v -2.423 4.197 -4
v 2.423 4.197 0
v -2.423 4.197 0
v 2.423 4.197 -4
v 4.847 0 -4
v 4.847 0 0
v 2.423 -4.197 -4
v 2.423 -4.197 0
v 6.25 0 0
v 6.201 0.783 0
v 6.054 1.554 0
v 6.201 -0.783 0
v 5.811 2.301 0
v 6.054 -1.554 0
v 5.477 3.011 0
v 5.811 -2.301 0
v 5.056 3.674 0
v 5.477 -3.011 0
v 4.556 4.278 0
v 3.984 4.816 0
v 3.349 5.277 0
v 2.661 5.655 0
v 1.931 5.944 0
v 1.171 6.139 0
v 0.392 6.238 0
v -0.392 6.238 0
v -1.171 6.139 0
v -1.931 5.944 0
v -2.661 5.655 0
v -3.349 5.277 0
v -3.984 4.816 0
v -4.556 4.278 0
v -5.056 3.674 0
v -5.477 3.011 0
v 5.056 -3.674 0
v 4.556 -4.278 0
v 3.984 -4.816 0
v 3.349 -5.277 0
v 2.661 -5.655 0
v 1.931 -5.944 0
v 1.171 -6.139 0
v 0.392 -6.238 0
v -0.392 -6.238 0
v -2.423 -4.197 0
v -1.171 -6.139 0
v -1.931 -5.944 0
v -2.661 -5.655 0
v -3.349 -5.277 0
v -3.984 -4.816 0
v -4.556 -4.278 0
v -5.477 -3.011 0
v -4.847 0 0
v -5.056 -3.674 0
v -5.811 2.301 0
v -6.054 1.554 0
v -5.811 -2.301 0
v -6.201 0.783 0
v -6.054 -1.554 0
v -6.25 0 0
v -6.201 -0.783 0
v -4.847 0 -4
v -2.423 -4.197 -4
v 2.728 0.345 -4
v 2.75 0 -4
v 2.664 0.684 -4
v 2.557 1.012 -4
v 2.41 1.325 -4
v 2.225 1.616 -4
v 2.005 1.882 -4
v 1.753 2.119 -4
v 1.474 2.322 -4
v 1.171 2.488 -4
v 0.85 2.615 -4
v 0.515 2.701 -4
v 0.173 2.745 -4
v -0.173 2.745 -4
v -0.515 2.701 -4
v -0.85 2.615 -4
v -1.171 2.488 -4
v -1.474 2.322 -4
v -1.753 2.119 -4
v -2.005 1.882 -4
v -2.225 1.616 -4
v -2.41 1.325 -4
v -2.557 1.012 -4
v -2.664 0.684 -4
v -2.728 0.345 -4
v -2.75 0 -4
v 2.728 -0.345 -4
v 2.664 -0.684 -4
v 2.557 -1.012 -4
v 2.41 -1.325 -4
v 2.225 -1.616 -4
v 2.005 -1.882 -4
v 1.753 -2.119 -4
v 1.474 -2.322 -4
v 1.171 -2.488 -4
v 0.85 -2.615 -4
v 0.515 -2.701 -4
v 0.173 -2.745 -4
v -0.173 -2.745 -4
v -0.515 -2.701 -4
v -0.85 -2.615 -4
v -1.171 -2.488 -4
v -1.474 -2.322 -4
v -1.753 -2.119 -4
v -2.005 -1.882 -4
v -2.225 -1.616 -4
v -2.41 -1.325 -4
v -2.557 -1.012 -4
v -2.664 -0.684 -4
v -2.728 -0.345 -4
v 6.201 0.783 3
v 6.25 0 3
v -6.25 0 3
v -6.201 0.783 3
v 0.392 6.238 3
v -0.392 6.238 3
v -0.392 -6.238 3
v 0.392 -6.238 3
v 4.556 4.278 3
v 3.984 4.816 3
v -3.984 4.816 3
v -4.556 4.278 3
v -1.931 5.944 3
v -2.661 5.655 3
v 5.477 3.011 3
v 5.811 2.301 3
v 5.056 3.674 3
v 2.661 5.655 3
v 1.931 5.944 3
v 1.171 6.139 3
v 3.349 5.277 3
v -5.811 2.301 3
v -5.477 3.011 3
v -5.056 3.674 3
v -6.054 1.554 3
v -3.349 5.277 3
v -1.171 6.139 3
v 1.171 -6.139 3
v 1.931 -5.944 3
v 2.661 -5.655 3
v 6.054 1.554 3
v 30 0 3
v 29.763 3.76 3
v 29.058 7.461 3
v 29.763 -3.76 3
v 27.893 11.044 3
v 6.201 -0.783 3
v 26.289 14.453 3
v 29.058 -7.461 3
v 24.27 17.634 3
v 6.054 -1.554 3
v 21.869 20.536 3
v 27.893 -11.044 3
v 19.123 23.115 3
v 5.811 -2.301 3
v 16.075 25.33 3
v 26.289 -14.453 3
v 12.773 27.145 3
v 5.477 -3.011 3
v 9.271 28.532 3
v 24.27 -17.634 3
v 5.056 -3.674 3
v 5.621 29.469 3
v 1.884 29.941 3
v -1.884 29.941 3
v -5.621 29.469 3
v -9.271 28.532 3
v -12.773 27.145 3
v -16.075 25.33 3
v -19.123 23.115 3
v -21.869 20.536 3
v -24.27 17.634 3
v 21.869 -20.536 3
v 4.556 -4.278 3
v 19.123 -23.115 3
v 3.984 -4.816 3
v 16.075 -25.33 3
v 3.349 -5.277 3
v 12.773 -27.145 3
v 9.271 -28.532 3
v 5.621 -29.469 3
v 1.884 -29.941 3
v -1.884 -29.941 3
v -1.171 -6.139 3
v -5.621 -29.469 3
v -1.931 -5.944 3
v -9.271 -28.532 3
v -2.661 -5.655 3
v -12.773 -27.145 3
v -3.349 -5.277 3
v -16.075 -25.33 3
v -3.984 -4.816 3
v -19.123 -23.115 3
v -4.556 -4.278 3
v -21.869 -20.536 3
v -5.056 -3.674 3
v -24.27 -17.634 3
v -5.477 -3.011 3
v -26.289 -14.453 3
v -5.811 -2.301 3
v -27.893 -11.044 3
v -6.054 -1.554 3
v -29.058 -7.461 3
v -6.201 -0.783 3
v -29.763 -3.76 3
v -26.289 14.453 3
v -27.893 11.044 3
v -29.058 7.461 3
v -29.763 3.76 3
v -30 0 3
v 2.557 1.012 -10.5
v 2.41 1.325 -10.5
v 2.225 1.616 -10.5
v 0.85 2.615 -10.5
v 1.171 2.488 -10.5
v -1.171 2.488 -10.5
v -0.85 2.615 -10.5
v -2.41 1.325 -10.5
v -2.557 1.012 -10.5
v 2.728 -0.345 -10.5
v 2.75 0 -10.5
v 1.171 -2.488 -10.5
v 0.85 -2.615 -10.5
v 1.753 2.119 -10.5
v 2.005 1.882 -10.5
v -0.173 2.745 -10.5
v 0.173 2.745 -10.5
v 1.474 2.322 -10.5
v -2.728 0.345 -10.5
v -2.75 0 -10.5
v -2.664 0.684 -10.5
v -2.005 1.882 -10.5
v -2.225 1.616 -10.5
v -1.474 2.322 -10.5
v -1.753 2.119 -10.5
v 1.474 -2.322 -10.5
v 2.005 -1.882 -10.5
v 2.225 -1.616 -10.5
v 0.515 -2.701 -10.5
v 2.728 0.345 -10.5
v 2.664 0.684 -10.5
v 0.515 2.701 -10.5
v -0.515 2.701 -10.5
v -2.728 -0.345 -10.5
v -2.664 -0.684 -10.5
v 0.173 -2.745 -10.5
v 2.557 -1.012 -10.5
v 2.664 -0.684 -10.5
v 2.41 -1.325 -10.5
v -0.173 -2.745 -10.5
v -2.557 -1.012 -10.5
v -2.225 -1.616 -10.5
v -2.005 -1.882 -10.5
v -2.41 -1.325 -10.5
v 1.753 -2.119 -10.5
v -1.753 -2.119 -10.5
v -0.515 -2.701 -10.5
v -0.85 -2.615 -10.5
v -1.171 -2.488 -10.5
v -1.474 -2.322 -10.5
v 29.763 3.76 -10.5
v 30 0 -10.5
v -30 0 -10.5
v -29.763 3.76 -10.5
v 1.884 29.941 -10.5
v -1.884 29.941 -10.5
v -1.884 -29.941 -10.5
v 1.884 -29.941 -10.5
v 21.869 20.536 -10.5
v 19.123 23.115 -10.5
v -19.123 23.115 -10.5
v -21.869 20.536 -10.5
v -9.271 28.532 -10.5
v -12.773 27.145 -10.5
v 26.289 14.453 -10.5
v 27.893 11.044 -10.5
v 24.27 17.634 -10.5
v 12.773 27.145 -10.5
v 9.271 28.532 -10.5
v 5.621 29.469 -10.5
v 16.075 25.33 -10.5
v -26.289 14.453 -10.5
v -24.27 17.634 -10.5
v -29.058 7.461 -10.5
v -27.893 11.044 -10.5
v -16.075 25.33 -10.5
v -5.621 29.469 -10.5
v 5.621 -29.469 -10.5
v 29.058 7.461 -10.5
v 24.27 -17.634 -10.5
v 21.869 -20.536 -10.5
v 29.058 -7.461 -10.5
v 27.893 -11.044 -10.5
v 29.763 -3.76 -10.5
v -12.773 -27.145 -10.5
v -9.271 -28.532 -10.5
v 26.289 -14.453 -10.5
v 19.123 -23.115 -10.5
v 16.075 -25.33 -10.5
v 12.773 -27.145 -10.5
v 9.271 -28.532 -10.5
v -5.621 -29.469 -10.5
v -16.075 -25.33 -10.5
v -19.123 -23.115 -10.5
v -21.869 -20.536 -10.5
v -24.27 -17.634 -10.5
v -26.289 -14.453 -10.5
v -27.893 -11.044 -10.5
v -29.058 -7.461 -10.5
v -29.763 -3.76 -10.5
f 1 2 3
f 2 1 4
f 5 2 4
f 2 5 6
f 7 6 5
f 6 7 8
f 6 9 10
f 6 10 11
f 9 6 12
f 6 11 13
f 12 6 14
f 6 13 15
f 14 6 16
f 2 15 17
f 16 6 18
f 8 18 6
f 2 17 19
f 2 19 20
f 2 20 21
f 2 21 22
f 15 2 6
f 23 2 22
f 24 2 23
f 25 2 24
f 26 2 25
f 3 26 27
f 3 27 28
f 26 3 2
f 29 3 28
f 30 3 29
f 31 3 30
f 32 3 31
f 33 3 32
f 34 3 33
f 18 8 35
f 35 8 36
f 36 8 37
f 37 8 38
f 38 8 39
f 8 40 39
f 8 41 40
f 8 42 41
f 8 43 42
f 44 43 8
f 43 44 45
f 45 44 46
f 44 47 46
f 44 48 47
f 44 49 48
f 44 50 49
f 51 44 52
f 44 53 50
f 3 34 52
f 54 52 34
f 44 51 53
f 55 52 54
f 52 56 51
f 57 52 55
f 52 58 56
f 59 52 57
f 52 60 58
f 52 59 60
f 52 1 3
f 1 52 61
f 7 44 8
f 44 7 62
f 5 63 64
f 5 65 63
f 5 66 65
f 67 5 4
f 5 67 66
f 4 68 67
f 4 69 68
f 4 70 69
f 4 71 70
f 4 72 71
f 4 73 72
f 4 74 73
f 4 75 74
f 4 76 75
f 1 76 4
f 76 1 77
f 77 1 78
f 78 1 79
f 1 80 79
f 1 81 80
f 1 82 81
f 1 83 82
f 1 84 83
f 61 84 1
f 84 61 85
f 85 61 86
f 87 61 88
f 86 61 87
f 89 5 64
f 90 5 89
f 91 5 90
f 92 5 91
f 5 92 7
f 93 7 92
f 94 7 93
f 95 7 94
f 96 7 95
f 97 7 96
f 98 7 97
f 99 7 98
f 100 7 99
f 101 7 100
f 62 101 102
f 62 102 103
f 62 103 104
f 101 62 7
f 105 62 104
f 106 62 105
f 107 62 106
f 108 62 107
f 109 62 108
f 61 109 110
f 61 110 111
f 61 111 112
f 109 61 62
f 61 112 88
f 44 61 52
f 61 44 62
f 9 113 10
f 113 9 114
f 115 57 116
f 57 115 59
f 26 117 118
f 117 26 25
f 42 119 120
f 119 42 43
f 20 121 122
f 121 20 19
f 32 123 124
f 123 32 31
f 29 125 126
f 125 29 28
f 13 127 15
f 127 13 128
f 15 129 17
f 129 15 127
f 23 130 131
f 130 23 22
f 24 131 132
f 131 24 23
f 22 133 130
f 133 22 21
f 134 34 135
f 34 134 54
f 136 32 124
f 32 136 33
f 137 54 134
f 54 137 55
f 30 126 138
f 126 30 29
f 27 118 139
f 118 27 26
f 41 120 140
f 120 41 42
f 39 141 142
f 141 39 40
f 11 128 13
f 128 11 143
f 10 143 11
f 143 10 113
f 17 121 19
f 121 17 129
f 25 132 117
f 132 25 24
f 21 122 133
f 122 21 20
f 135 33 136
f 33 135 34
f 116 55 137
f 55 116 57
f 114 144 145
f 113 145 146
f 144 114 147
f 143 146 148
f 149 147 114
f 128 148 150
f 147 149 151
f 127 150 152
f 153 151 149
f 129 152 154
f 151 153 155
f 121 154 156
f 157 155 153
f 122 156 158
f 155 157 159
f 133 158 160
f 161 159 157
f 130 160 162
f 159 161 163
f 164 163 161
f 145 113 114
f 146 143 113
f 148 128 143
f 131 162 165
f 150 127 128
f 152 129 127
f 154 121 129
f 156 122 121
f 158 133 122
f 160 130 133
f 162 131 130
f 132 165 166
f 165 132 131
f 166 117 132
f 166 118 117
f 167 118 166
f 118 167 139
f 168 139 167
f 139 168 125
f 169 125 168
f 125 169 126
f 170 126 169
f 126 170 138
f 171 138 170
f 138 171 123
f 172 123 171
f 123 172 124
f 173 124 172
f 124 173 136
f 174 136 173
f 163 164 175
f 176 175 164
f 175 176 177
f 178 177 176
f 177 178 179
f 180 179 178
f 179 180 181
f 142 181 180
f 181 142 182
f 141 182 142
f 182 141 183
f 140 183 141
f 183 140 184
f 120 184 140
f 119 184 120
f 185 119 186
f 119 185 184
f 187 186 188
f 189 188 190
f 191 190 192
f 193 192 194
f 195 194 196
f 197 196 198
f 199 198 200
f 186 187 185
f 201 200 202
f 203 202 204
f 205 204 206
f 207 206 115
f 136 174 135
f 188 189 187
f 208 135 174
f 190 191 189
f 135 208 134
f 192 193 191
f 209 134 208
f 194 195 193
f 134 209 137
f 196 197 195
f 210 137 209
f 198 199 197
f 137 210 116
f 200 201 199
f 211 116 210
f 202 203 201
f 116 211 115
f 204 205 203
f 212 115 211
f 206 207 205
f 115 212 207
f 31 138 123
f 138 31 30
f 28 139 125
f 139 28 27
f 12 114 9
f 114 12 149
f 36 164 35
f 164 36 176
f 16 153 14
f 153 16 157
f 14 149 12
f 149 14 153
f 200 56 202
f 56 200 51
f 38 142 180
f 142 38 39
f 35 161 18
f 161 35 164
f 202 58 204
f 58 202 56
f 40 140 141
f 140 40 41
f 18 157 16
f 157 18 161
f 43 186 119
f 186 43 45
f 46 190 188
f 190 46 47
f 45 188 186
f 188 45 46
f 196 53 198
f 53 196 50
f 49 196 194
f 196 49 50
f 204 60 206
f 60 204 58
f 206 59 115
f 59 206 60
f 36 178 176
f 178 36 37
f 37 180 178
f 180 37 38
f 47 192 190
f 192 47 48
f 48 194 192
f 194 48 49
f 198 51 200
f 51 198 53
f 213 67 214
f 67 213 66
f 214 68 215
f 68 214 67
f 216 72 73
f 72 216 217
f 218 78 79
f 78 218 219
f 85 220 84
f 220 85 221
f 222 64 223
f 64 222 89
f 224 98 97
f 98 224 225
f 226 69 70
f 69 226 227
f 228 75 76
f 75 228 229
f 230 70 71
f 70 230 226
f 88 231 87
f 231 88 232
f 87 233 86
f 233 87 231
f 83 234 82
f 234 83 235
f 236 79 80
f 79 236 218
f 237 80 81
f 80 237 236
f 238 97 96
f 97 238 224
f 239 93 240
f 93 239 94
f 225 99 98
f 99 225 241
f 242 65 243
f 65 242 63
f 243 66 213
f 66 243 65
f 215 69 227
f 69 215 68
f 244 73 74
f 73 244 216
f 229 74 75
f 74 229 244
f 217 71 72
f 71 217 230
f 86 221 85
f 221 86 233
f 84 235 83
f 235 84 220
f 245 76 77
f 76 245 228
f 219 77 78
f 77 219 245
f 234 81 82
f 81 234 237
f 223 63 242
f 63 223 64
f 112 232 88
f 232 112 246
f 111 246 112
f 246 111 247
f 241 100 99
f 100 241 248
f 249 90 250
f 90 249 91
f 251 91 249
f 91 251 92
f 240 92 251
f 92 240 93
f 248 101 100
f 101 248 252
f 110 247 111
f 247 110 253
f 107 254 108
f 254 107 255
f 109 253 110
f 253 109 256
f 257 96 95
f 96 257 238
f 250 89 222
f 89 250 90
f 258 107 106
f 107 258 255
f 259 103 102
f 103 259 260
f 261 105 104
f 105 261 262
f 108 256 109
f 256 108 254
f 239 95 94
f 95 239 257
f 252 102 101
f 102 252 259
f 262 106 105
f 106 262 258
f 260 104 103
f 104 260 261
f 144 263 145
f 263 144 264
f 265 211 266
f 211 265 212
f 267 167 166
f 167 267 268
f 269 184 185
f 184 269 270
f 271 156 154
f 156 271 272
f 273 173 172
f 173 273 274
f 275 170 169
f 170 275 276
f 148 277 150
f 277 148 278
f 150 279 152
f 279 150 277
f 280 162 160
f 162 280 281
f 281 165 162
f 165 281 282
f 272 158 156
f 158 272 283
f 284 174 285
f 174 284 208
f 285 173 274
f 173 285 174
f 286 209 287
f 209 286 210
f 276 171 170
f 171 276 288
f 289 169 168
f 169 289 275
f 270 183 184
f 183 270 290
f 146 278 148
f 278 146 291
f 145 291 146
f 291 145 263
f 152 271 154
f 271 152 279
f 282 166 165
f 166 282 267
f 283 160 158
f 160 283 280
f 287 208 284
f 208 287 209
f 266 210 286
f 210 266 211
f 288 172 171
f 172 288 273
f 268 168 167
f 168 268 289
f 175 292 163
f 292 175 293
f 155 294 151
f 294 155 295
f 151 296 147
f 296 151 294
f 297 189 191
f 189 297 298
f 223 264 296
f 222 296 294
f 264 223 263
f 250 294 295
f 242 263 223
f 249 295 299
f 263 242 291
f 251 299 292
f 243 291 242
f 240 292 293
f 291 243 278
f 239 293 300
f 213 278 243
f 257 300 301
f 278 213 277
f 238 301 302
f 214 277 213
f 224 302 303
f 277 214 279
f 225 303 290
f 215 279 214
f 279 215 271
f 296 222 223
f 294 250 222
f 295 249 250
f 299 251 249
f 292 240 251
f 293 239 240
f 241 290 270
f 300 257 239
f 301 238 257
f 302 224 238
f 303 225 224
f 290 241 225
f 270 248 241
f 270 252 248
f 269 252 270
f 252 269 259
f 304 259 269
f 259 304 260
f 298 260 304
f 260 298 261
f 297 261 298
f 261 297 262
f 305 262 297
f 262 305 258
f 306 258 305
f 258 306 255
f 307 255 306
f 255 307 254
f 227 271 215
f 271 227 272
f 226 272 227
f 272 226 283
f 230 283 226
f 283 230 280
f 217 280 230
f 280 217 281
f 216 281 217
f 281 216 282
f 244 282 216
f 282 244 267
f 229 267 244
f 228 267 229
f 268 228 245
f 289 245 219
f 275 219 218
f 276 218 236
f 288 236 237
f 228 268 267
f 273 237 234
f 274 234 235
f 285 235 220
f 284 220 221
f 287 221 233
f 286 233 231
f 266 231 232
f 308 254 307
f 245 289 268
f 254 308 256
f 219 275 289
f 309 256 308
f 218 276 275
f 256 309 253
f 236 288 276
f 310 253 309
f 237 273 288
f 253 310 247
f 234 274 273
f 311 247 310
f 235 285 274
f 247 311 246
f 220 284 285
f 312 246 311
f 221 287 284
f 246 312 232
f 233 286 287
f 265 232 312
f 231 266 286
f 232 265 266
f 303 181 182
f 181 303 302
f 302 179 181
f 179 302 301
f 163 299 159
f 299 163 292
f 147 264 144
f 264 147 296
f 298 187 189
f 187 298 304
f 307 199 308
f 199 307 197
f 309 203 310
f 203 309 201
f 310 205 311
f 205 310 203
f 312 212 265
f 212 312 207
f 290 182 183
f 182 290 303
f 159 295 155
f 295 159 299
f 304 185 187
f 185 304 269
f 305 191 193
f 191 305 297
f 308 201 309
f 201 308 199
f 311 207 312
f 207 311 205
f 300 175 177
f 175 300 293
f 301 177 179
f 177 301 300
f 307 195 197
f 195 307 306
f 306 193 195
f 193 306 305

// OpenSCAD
$fn = 50;

difference() {
	union() {
		translate(v = [0, 0, -10.5]) {
			cylinder(h = 13.5, r = 30.0);
		}
	}
	union() {
		translate(v = [0, 0, 0]) {
			rotate(a = [0, 0, 0]) {
				difference() {
					union() {
						translate(v = [0, 0, -4]) {
							linear_extrude(height = 4) {
								polygon(points = [[4.8468, 0.0], [2.4234000000000004, 4.197451927062417], [-2.423399999999999, 4.197451927062417], [-4.8468, 5.935618106107392e-16], [-2.423400000000002, -4.197451927062416], [2.423399999999997, -4.197451927062419]]);
							}
						}
					}
					union();
				}
			}
		}
		#cylinder(h = 3, r = 6.25);
		#translate(v = [0, 0, -100.0]) {
			cylinder(h = 200, r = 2.75);
		}
	}
}
